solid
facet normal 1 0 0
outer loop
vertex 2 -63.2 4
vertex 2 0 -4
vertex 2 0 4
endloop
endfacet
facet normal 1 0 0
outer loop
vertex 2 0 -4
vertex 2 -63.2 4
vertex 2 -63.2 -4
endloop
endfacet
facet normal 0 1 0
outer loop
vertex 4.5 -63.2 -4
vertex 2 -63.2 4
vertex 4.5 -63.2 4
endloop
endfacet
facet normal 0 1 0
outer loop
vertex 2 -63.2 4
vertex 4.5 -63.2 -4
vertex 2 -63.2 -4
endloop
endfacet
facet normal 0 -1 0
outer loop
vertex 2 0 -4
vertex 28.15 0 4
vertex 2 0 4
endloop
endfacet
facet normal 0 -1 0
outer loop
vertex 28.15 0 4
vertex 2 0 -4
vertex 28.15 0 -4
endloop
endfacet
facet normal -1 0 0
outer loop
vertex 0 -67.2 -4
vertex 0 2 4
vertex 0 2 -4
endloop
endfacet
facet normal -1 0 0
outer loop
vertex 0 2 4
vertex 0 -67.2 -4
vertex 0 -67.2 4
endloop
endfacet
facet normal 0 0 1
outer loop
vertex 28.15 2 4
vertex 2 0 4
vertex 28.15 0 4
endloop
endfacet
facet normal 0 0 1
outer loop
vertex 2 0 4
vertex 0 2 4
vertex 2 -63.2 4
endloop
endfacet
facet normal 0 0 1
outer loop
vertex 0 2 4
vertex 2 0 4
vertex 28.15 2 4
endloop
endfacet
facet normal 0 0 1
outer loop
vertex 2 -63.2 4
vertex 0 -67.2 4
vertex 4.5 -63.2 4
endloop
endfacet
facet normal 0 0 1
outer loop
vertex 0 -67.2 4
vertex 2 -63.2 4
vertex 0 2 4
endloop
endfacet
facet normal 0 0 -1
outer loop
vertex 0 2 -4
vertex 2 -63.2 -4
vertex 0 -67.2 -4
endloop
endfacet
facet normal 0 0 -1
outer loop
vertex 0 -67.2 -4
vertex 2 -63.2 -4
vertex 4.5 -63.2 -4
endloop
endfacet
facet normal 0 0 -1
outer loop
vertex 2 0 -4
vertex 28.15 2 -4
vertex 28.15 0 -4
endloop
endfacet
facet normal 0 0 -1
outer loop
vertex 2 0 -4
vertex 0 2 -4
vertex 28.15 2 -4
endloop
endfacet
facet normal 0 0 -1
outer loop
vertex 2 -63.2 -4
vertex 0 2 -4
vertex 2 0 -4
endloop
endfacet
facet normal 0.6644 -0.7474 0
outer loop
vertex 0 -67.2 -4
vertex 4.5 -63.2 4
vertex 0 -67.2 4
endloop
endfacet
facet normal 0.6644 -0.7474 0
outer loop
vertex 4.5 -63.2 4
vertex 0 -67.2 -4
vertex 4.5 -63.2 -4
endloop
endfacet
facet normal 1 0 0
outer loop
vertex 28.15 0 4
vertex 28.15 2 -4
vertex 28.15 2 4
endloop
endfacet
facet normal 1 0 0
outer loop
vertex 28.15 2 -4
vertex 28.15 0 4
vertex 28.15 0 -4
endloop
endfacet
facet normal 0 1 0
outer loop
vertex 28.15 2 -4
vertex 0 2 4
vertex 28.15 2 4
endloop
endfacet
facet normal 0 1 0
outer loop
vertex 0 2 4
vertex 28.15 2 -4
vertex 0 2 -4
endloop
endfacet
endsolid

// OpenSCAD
// file: Sparkfun_9032.scad
/*  Copyright (C) 2020  Adam Green (https://github.com/adamgreen)

    This program is free software; you can redistribute it and/or
    modify it under the terms of the GNU General Public License
    as published by the Free Software Foundation; either version 2
    of the License, or (at your option) any later version.

    This program is distributed in the hope that it will be useful,
    but WITHOUT ANY WARRANTY; without even the implied warranty of
    MERCHANTABILITY or FITNESS FOR A PARTICULAR PURPOSE.  See the
    GNU General Public License for more details.
*/
// Rough CAD outline of the Sparkfun Thumb Joystick.
// https://www.sparkfun.com/products/9032



module joystick() {
    // Black plastic portion of the thumbstick which can be popped off of the joystick gimbal.
    translate([0, 0, 11.2]) 
        let(topHeight=13.68) union() {
            let(roundedEdgeRadius=2.5, large=100) hull() {
                // Top rounded surface of the joystick.
                difference() {
                    joystickTop();
                    // Only keep the part above the start of the rounded edge.
                    translate([0, 0, (topHeight+roundedEdgeRadius)-large/2]) 
                        cube([large, large, large], center=true);
                }
                // The rounded edge on the top portion of the joystick.
                difference() {
                    intersection() {
                        joystickRoundedEdge();
                        joystickTop(); 
                    }
                    // Remove the area below 13.68mm where the shaft of the joystick starts
                    translate([0, 0, topHeight/2]) 
                        cube([large, large, topHeight], center=true);
                }
            }
        // The plastic shaft of the joystick.
        let(shaftLength=5, shaftRadius=10.5/2)
            translate([0, 0, topHeight-shaftLength]) 
                cylinder(r=shaftRadius, h=shaftLength);
        // The rounded base at the bottom of the plastic joystick.
        let(baseRadius=26.0/2, roundedRadius=10.5, h=8.5, a=asin(h/roundedRadius), points = [ [0, 0], for(i=[0:1:a]) [cos(i)*roundedRadius, sin(i)*roundedRadius] ])
            hull() rotate_extrude()
                translate([baseRadius-roundedRadius, 0, 0])
                    polygon(points);
    }
    // The metal frame at the base of the joystick, containing the gimbal.
    translate([0, 0, 12.2/2]) cube([16.0, 16.0, 12.2], center=true);
    // The pots on the outside of the metal frame.
    translate([0, -16.0/2.0-3.18/2, 12.0/2.0]) 
        cube([9.6, 3.18, 12.0], center=true);
    rotate([0, 0, 90]) 
        translate([0, -16.0/2.0-3.18/2, 12.0/2.0]) 
            cube([9.6, 3.18, 12.0], center=true);
    // The joystick press switch.
    // White plastic base.
    translate([-16.0/2-7.0, -10.43/2, 0]) cube([7.0, 10.43, 2.4]);
    // Momentary switch.
    //  Base
    translate([-16.0/2-6.0, -6.0/2, 2.4]) cube([6.0, 6.0, 1.4]);
    //  Round button
    translate([-16.0/2-6.0/2, 0, 2.4+1.4]) cylinder(d=3.46, h=1.64);
}

// Top rounded surface of the joystick.
module joystickTop() {
    let(topRadius=25.0, roundedRadius=2.5)
        translate([0, 0, 17.3-topRadius]) 
            sphere(r=topRadius);
}

// The rounded edge on the top portion of the joystick.
module joystickRoundedEdge() {
    let(roundedRadius=2.5)
        translate([0, 0, 13.68])
            rotate_extrude()
                translate([20/2-roundedRadius, 0, 0])
                    circle(r=roundedRadius);
}
// main file
/*  Copyright (C) 2020  Adam Green (https://github.com/adamgreen)

    This program is free software; you can redistribute it and/or
    modify it under the terms of the GNU General Public License
    as published by the Free Software Foundation; either version 2
    of the License, or (at your option) any later version.

    This program is distributed in the hope that it will be useful,
    but WITHOUT ANY WARRANTY; without even the implied warranty of
    MERCHANTABILITY or FITNESS FOR A PARTICULAR PURPOSE.  See the
    GNU General Public License for more details.
*/
// Case to contain the electronics for the remote control.
include <Common.scad>


rotate([90, 0, 0])
    BatteryClip();
